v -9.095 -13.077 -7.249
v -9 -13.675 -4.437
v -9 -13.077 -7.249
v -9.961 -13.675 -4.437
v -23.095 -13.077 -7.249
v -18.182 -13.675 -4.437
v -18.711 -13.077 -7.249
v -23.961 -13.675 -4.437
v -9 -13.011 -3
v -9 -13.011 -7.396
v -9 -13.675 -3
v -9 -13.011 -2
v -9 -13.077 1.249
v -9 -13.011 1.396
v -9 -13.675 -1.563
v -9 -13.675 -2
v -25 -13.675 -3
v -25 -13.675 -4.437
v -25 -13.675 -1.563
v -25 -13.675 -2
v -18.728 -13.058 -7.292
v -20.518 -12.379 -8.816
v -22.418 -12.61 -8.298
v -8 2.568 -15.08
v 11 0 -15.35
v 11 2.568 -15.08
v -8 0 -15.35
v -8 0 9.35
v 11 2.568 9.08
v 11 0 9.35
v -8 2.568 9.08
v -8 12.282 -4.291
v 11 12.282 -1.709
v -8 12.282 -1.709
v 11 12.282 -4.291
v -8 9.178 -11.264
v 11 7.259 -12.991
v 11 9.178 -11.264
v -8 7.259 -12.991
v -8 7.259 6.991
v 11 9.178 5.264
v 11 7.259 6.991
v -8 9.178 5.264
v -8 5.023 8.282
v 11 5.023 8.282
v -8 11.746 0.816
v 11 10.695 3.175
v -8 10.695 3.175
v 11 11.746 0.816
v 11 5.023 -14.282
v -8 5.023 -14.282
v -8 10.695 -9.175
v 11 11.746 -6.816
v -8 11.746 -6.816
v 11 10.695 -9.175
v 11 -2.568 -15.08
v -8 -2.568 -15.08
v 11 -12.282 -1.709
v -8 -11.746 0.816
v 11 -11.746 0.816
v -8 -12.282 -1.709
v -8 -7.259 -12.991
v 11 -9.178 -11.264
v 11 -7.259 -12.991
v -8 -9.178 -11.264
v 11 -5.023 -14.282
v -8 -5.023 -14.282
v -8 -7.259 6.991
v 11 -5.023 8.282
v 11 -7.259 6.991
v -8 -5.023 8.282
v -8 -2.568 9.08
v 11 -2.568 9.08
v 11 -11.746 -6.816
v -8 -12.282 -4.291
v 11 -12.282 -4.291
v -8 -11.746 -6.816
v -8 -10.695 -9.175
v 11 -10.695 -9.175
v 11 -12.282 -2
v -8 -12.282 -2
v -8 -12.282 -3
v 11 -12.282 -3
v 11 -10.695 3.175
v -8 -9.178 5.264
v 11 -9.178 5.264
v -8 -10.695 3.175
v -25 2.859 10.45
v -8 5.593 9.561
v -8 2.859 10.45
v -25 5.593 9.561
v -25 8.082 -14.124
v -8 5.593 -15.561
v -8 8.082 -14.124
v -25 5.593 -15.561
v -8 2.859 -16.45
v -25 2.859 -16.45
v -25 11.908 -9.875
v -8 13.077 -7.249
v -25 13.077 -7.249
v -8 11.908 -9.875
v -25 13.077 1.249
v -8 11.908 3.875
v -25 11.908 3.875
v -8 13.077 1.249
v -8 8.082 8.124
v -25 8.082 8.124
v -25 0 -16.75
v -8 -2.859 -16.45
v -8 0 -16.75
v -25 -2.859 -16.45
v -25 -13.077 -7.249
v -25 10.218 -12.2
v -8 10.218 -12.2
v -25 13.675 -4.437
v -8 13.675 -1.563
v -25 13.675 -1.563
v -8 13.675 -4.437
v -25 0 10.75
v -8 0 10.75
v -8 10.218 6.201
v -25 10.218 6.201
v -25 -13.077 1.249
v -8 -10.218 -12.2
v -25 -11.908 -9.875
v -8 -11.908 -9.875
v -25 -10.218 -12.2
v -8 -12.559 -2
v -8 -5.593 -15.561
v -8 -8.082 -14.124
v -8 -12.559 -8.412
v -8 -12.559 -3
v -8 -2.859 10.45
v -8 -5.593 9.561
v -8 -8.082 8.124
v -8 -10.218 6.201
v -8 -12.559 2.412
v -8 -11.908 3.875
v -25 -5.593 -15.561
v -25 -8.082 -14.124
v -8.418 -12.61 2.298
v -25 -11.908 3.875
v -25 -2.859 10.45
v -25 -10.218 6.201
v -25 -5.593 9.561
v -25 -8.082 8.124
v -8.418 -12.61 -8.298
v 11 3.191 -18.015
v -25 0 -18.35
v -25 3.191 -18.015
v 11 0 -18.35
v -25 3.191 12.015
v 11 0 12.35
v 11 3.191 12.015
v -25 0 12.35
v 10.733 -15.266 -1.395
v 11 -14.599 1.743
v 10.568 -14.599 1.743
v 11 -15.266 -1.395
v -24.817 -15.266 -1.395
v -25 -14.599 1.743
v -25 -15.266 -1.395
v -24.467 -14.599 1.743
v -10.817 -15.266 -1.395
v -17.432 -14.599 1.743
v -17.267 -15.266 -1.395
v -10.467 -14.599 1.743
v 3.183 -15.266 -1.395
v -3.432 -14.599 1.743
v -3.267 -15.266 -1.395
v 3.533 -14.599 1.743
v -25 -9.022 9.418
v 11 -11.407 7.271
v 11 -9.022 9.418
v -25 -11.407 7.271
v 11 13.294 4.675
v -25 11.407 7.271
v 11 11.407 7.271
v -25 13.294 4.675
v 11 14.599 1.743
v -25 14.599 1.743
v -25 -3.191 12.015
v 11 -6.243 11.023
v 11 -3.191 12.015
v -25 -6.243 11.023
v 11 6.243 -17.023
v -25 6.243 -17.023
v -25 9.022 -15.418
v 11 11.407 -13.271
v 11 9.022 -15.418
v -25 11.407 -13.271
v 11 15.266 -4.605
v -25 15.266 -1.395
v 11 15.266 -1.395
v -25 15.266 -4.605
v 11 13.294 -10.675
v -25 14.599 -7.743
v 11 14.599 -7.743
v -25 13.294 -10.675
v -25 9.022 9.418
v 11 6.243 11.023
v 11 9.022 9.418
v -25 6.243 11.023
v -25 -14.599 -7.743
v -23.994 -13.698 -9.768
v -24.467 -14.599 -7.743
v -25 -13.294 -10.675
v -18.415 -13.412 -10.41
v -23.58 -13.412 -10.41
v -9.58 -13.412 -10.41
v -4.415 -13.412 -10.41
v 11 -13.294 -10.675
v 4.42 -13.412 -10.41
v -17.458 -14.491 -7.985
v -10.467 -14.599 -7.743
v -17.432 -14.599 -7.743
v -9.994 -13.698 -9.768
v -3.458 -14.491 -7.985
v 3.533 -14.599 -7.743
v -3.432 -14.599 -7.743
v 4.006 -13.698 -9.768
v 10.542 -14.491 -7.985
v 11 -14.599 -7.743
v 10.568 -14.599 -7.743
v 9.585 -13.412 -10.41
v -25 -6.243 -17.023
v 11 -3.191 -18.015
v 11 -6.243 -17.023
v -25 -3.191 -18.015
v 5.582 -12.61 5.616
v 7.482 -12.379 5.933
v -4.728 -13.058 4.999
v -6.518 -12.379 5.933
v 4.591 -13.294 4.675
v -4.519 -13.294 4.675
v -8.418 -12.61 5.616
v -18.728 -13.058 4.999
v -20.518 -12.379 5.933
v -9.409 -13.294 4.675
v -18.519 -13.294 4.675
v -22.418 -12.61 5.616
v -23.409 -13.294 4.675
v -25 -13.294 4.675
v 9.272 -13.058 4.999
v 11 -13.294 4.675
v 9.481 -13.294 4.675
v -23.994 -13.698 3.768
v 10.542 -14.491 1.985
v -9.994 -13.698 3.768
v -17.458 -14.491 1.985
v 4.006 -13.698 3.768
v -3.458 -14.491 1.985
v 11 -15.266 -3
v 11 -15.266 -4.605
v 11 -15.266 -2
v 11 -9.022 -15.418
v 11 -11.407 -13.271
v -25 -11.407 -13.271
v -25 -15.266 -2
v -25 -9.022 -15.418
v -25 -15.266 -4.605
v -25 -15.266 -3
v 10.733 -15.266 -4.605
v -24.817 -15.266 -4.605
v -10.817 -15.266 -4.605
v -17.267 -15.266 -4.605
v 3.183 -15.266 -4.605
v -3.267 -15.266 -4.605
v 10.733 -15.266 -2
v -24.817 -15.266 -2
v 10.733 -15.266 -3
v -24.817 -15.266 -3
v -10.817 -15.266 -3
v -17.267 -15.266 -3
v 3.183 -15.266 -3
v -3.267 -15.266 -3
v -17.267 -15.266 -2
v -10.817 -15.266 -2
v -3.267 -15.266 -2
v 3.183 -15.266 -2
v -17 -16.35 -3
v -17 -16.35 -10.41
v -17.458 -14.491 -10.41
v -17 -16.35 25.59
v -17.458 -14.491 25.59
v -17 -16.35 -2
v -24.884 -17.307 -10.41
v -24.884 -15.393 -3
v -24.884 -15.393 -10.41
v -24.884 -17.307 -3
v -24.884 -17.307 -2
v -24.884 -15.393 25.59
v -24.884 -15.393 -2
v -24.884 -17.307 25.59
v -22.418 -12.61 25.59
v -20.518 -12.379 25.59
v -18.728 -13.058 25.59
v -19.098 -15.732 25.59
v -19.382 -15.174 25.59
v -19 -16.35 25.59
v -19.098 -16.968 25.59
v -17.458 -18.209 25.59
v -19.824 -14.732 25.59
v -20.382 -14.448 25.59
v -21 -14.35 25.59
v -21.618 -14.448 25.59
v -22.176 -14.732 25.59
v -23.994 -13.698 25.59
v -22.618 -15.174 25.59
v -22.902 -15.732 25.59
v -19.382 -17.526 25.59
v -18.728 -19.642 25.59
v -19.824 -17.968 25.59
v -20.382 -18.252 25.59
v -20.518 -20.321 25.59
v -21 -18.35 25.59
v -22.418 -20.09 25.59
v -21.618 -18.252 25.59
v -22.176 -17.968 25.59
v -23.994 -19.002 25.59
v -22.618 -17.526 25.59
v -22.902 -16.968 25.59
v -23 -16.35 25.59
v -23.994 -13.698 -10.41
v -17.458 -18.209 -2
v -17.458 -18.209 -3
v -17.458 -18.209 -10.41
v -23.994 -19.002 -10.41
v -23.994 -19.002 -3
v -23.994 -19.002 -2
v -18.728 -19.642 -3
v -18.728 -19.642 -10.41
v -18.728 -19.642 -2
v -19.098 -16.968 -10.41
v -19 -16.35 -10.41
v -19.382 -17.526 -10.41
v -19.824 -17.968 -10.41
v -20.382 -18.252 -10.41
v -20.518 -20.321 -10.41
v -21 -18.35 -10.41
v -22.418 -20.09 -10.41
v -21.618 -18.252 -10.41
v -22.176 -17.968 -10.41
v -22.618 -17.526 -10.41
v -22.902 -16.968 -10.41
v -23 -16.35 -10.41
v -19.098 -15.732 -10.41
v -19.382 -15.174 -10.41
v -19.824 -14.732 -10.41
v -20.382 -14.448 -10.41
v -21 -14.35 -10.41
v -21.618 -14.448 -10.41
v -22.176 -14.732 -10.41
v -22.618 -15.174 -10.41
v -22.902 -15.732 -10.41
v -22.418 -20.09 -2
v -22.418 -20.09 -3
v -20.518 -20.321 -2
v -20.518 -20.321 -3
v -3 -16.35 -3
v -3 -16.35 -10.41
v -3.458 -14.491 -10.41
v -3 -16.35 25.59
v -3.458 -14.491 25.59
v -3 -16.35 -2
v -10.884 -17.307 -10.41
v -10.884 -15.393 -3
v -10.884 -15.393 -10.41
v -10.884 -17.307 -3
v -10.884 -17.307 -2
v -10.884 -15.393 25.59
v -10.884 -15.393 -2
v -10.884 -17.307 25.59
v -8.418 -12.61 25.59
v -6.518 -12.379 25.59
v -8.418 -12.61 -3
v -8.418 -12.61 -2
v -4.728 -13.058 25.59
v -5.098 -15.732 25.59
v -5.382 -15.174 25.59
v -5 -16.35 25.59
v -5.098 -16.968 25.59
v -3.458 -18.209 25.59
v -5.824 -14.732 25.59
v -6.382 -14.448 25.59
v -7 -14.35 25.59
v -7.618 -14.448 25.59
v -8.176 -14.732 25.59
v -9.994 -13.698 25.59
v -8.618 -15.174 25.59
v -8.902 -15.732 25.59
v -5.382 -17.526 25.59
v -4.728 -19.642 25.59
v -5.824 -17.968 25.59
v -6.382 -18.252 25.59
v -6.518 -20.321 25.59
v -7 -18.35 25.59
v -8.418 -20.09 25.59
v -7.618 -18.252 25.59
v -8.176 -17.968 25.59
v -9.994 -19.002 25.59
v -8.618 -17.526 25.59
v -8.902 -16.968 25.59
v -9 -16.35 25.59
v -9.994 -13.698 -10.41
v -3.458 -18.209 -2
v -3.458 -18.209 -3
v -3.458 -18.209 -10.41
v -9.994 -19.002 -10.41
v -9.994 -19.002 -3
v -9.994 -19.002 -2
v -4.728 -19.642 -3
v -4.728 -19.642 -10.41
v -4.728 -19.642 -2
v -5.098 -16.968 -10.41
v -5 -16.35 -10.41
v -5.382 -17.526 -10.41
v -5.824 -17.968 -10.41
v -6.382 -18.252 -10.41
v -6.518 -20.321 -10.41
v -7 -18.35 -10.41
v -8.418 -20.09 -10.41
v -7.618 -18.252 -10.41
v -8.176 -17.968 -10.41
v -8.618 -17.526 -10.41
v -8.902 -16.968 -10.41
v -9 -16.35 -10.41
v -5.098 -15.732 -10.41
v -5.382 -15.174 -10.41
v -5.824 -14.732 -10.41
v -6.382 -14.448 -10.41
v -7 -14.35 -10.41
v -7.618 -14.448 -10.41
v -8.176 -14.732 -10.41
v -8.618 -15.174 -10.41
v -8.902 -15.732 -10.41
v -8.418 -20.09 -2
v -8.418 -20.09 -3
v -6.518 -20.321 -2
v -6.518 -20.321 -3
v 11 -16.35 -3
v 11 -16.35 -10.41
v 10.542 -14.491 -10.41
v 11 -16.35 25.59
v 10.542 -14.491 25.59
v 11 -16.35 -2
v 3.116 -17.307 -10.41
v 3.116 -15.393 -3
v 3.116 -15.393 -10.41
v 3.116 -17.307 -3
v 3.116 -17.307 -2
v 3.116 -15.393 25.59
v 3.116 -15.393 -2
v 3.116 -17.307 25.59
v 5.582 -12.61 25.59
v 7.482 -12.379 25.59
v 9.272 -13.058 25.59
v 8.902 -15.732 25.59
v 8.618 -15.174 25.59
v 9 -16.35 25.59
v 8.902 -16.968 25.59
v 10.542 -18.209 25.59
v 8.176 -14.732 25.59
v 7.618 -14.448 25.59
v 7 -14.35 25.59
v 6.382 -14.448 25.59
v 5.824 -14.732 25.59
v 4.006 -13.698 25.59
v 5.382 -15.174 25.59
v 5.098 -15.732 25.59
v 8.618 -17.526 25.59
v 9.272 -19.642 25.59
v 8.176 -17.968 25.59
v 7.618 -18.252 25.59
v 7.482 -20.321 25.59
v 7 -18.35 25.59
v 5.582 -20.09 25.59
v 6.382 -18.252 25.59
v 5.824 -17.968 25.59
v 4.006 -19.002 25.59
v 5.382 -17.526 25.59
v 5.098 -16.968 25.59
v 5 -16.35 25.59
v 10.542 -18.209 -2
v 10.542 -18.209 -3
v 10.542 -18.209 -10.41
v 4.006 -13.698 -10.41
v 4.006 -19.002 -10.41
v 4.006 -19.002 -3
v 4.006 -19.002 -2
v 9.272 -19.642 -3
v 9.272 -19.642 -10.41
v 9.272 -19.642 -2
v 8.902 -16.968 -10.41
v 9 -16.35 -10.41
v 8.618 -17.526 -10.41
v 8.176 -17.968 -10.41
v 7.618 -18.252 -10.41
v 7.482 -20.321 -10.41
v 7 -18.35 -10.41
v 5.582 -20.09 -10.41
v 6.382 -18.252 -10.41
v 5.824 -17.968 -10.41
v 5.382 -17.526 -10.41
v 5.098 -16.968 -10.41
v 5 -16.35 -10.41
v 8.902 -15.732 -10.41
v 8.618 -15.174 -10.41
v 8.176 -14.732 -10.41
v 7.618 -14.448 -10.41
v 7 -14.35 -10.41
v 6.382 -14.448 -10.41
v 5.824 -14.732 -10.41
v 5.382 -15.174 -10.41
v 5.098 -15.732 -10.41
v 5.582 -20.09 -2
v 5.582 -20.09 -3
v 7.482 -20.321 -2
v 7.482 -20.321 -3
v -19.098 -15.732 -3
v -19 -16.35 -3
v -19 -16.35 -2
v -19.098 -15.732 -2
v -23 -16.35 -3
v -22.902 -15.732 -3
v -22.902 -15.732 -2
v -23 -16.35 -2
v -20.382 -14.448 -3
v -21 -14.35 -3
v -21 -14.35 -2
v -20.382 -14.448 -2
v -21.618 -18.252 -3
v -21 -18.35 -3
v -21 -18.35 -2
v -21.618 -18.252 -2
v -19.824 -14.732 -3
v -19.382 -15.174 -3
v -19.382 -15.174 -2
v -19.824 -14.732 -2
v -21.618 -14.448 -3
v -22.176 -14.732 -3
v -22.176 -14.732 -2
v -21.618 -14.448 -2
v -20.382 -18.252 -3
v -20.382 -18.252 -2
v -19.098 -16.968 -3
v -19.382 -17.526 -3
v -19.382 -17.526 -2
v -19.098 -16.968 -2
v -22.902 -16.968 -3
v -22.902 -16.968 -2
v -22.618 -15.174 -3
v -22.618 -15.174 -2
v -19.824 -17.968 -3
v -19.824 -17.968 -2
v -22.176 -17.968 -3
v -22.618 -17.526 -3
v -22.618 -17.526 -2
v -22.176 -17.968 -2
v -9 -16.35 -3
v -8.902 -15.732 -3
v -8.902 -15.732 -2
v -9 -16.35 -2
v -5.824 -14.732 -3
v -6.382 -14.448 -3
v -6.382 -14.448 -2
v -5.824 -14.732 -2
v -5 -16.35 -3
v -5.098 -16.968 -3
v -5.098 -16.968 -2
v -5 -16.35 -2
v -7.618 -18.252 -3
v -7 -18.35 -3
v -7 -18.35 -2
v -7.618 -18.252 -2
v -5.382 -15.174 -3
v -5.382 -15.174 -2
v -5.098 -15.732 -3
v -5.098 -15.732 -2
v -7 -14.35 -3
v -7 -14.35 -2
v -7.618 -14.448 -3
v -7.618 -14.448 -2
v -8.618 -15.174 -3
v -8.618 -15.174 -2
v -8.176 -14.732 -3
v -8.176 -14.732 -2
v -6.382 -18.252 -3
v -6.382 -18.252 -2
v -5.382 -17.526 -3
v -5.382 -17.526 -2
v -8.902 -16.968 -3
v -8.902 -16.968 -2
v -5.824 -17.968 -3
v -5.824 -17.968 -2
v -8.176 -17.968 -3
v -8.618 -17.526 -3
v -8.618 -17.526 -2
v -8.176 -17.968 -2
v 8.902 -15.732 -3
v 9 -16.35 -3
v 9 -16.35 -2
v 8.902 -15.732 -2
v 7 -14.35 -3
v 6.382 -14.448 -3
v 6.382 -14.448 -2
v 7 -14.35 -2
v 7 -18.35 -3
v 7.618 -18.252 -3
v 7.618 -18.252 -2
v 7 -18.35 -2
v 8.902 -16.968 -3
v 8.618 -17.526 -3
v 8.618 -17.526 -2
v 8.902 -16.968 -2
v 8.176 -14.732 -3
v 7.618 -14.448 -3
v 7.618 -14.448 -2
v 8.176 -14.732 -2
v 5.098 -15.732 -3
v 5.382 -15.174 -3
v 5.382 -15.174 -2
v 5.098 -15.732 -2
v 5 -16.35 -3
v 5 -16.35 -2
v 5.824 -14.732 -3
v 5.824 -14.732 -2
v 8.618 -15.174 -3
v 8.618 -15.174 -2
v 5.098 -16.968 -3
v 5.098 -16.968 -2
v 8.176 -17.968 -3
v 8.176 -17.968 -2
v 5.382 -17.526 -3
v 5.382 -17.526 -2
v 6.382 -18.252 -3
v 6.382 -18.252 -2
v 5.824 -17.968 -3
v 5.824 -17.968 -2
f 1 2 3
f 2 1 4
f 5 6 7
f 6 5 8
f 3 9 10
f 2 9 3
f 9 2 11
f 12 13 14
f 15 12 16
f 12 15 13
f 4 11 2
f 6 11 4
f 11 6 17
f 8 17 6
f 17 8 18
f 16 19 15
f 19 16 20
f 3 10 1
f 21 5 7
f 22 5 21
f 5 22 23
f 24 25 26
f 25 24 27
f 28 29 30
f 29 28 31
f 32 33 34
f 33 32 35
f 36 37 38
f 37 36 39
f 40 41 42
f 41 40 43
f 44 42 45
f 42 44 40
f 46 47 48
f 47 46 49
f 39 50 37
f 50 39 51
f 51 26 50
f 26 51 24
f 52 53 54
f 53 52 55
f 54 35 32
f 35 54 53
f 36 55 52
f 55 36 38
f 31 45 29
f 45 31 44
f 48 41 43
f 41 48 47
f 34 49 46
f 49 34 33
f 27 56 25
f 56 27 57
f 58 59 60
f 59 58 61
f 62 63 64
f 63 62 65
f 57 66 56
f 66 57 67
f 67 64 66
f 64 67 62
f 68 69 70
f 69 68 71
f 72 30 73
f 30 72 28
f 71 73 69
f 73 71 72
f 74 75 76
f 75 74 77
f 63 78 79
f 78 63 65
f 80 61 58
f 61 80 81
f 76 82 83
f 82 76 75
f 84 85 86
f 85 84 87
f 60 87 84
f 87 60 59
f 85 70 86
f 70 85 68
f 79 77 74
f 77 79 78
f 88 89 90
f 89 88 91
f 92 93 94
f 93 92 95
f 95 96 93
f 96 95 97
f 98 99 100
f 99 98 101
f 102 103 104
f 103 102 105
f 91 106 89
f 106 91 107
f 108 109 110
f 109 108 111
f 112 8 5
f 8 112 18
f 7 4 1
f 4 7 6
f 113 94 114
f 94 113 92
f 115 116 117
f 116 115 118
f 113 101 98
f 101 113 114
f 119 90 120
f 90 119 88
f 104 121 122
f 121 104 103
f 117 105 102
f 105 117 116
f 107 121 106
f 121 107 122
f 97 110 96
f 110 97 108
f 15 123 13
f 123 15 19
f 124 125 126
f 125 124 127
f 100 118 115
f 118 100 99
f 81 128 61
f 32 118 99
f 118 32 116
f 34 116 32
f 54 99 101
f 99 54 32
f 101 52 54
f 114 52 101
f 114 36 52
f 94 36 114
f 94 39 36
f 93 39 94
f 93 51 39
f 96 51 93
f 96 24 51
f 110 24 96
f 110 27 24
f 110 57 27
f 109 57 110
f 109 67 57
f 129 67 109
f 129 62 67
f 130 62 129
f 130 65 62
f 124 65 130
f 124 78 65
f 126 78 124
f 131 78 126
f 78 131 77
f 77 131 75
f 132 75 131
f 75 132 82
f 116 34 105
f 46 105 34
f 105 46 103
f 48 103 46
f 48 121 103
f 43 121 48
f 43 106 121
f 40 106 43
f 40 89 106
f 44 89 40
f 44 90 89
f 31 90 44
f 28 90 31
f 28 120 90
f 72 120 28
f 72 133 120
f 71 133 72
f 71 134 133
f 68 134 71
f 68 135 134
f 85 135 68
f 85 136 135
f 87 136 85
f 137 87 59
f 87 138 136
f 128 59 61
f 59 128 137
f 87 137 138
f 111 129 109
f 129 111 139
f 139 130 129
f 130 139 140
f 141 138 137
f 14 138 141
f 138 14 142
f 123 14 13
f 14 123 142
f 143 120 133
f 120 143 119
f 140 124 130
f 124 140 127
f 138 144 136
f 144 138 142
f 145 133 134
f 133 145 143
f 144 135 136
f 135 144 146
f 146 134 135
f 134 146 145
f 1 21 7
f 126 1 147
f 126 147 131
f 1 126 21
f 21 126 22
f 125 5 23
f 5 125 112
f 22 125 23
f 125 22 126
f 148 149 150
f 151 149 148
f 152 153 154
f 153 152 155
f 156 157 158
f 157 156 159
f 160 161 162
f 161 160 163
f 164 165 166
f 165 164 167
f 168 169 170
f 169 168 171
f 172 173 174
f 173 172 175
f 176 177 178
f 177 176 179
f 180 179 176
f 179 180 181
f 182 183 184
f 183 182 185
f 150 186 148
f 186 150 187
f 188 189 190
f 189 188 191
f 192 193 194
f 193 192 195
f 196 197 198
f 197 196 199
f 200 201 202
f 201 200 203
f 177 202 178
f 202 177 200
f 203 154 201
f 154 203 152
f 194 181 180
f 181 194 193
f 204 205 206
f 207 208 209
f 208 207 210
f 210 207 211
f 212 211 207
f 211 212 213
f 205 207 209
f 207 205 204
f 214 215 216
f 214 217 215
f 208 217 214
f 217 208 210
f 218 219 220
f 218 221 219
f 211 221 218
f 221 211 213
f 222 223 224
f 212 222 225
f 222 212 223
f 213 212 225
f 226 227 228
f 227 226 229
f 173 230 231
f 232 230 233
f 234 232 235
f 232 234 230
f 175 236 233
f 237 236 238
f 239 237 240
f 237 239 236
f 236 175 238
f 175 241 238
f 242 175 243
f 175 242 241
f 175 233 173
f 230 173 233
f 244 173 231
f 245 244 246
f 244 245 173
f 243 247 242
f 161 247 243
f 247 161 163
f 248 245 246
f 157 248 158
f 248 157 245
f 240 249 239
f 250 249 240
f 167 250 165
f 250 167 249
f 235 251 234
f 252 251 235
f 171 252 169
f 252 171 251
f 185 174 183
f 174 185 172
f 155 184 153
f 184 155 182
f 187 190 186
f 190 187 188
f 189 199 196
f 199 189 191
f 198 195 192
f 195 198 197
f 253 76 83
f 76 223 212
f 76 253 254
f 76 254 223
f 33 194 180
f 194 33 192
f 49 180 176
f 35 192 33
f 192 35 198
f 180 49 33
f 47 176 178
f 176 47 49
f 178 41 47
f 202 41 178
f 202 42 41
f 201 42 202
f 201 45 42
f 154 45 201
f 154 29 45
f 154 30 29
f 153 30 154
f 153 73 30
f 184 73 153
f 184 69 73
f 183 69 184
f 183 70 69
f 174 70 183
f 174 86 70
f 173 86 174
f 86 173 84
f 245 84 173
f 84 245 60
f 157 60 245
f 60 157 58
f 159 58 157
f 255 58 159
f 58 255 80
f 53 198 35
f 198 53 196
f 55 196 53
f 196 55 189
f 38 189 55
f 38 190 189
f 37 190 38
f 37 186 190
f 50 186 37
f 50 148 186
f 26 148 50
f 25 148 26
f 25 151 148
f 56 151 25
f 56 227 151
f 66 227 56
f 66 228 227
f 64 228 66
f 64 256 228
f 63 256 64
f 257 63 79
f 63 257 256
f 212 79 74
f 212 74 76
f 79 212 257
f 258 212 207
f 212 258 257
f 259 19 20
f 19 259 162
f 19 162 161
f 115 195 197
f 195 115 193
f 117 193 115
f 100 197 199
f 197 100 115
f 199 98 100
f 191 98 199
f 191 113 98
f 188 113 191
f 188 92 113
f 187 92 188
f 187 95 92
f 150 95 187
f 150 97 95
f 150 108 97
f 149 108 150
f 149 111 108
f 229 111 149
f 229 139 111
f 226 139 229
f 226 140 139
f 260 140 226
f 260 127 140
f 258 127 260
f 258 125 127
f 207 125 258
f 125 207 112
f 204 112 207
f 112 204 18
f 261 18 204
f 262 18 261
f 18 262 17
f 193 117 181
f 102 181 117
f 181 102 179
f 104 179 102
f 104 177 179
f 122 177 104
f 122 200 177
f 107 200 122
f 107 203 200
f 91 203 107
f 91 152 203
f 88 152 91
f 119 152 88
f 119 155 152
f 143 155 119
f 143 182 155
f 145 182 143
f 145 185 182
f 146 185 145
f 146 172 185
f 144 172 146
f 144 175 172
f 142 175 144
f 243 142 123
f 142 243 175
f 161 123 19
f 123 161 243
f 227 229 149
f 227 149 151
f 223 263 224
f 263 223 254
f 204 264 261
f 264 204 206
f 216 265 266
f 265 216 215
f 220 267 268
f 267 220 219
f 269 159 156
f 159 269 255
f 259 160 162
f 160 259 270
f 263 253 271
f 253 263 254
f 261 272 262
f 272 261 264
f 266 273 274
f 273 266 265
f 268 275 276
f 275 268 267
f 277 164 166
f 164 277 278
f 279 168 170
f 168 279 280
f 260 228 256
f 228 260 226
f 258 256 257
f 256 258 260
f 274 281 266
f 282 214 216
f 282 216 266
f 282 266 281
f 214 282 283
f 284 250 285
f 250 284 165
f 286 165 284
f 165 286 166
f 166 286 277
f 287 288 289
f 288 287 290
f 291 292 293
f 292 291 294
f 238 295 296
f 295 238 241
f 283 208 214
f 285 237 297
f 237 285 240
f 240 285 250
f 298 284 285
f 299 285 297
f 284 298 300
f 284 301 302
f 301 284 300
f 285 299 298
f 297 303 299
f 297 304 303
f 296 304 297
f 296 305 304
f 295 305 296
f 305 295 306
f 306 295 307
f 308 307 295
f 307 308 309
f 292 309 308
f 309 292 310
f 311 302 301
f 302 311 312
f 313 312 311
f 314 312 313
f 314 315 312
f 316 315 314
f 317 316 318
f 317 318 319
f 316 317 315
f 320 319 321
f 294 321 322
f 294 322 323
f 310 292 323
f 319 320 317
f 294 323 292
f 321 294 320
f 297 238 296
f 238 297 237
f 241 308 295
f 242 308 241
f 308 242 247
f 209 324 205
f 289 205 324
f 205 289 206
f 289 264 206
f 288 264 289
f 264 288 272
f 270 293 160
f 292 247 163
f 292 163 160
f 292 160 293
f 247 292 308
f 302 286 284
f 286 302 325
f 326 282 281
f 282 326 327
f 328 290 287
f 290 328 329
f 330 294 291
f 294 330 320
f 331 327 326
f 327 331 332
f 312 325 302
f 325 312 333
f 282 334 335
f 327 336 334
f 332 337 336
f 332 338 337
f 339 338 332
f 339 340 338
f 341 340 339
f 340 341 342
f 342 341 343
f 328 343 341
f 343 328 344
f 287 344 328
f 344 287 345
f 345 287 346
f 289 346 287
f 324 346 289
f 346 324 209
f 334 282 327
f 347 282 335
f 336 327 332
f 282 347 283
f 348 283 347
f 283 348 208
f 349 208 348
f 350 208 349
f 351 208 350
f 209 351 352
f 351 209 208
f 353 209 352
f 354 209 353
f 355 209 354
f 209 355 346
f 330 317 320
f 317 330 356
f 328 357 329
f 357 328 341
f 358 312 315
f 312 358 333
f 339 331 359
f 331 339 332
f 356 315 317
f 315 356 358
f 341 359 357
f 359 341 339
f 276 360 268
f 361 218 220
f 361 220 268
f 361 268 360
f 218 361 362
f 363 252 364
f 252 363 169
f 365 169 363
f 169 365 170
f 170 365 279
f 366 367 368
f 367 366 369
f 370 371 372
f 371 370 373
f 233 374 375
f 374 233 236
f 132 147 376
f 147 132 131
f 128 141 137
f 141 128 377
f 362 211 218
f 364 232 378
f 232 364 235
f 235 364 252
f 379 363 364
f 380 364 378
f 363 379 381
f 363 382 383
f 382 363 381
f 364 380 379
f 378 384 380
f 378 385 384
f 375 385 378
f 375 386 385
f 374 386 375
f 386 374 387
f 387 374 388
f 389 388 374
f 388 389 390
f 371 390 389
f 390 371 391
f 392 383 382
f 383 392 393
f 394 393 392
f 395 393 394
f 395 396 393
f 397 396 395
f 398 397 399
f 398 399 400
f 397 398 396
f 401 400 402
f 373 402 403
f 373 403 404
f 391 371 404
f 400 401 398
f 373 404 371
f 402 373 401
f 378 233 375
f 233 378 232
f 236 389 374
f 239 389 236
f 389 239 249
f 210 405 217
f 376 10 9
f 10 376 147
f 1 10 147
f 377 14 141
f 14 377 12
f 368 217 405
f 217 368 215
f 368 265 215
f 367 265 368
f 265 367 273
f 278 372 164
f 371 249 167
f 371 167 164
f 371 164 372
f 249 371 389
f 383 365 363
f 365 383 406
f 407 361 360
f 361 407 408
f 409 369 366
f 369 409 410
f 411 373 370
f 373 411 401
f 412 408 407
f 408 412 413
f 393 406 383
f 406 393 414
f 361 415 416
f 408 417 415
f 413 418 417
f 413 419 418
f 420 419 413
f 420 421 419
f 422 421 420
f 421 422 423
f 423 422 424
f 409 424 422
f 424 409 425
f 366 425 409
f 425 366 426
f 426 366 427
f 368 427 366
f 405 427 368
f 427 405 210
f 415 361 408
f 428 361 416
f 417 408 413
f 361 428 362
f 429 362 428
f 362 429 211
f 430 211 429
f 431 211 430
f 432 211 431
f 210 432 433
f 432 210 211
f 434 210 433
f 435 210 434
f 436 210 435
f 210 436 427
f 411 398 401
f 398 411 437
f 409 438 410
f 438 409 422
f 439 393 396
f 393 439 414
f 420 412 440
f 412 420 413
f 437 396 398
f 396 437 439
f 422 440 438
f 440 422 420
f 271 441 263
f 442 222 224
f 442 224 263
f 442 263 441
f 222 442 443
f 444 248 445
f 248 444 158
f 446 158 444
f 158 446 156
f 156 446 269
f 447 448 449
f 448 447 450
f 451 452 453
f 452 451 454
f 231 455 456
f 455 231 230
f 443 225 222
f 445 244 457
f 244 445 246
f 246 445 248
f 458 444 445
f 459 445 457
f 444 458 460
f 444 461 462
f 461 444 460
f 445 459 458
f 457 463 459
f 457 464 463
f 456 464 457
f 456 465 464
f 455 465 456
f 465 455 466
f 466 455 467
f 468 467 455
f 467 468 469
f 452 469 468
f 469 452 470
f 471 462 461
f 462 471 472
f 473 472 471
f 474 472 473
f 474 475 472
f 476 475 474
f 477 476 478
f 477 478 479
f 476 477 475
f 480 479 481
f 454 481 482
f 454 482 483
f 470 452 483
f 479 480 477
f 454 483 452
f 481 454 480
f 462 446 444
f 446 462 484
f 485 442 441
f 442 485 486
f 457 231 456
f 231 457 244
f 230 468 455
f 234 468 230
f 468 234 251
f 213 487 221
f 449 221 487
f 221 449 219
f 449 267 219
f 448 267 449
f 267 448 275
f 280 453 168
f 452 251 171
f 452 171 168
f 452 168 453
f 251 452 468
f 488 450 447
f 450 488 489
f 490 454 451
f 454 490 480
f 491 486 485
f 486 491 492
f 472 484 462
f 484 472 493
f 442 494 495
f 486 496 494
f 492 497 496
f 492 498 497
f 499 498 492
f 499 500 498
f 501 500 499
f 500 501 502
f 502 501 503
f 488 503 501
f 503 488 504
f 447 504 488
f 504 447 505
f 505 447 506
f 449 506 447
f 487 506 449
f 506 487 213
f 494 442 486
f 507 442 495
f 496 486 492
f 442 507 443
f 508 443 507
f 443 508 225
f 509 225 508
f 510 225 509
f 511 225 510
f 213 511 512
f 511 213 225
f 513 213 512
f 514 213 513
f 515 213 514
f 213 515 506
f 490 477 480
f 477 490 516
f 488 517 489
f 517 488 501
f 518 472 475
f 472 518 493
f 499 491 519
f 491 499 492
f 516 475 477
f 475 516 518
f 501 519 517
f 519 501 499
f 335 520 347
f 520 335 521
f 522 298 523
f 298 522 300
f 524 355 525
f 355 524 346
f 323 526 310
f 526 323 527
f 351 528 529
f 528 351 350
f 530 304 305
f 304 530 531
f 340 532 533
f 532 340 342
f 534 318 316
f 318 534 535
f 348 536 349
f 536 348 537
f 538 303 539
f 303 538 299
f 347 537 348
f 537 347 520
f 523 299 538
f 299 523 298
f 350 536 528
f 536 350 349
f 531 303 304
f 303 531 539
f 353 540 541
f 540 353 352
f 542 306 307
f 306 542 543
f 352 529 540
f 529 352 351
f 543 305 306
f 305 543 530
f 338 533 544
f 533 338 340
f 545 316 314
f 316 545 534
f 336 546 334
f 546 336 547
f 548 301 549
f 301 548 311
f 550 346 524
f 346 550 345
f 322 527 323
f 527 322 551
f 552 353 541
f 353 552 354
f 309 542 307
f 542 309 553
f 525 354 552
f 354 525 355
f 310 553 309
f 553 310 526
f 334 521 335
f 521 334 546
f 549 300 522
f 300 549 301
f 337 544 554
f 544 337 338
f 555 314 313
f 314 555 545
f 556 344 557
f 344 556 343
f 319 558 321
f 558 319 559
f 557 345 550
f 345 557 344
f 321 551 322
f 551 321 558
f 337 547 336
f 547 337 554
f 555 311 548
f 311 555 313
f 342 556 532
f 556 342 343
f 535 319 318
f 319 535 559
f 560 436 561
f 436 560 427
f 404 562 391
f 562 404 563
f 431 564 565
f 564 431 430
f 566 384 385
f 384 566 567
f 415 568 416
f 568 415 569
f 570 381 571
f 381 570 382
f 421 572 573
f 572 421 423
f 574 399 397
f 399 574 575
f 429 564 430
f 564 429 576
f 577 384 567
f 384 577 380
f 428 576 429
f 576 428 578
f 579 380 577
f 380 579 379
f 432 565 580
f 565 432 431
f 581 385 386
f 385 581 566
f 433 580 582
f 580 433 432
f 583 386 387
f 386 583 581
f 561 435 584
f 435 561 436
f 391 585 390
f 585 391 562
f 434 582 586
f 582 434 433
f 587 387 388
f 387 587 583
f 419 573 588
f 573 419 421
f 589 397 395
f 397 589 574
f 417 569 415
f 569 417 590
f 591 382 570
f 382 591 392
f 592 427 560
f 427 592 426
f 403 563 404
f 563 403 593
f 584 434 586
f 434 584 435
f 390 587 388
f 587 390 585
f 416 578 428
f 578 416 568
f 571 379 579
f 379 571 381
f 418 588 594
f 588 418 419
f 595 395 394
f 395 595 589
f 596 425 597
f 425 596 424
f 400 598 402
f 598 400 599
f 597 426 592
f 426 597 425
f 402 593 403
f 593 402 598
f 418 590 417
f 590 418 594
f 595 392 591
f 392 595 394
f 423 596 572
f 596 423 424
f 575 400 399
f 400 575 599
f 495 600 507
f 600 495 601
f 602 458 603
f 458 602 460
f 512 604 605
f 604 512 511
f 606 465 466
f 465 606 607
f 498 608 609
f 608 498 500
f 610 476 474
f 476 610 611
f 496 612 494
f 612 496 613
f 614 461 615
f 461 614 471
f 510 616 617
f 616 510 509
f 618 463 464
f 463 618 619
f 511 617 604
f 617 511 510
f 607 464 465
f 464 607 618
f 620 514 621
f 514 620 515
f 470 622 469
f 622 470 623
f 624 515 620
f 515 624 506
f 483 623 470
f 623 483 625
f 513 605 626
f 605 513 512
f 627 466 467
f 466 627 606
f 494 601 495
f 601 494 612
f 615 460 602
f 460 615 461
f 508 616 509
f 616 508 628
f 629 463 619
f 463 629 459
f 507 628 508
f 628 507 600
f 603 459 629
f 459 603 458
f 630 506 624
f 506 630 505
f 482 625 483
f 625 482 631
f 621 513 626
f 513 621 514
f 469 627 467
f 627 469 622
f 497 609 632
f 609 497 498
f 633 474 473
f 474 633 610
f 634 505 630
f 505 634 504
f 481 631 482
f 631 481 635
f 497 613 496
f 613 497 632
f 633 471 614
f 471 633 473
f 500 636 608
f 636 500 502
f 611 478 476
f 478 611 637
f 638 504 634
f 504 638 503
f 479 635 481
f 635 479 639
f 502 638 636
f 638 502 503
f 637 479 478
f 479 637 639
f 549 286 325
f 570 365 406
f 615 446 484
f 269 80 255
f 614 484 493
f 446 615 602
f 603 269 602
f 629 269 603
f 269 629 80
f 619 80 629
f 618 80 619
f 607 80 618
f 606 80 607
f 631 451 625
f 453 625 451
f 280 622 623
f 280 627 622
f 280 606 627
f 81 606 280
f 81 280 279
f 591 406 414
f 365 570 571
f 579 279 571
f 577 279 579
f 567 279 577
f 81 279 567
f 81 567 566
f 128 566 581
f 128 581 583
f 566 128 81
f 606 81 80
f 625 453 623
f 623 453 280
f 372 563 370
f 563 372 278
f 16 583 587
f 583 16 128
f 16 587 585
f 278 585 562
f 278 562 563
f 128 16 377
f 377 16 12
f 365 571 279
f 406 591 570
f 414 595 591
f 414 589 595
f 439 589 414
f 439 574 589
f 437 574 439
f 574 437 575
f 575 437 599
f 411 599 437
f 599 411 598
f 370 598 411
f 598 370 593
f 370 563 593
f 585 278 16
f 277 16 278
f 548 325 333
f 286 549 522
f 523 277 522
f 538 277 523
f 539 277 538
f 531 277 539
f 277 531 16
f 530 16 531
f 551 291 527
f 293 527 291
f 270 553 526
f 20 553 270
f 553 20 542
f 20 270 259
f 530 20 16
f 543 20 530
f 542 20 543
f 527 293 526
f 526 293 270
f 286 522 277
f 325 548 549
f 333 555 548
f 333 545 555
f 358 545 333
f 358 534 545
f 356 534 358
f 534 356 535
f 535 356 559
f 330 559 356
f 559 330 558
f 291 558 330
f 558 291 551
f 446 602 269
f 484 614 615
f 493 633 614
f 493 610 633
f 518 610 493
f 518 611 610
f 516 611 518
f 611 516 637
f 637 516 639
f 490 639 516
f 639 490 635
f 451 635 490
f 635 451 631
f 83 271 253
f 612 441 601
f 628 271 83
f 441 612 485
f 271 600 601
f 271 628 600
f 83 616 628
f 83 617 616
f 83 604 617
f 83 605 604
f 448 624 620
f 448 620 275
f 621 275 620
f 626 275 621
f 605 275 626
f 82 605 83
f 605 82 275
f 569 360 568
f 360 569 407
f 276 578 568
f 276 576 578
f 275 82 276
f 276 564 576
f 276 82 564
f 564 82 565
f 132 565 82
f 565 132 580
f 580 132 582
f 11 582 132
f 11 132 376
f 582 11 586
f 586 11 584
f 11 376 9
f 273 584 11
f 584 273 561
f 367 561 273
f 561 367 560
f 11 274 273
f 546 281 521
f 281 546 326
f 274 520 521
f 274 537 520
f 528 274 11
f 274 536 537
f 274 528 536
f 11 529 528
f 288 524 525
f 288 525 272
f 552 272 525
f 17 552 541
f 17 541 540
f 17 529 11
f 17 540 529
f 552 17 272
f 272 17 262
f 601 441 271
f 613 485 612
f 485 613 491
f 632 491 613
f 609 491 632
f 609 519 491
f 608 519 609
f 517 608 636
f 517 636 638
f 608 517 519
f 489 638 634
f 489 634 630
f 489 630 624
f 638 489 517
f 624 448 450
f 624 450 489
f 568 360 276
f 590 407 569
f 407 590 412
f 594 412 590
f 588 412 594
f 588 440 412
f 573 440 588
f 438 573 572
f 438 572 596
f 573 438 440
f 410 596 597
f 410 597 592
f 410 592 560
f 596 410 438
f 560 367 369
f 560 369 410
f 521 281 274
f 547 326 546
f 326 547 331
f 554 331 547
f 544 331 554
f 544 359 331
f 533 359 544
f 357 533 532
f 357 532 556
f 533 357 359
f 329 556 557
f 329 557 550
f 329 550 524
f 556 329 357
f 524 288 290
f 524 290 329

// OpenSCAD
pump_d = 24.7;
pump_D = 27.5;
wall_t = 3;
pump_h = 20;
screw_sep = 14;
screw_head_d = 8;
screw_h = 36;
pump_center_z = pump_d/2 + wall_t - 3;
slit_t = 1;

module pump(){
translate([-pump_h/2, pump_d/2 + wall_t, pump_center_z]) 
  rotate(a=90, v=[0, 1, 0])
  translate([0, 0, -1])
  {
    cylinder(d=pump_d, h=pump_h + 2);
    translate([0, 0, -pump_h])cylinder(d=pump_D, h=pump_h + 2);
  }
}

module p_clamp(){
  difference(){
    union(){
      difference(){
	{
	  translate([-1.25 * pump_h, pump_d/2 + wall_t, pump_center_z]) 
	    rotate(a=90, v=[0, 1, 0])
	    cylinder(d=pump_d + 2 * wall_t, h=2 * screw_sep + screw_head_d);
	}
	translate([1, 0, 0])pump();
      }
    
    
      difference(){
	union(){
	  for(i=[-1.5, -.5, .5]){
	    translate([i * screw_sep, -1, pump_d/5])
	      cylinder(d=screw_head_d, h=screw_h);
	  }
	}
	pump();
	cube([pump_h + 2, 100, slit_t]);
      }
    }
    // slot
    translate([-pump_h/2 - 100, -20, pump_center_z])
      cube([pump_h + 2 + 100, pump_d/2 + wall_t + 20, 1]);

    for(i=[-1.5, -.5, .5]){
      translate([i * screw_sep, -1, pump_d/5])
	translate([0, 0, -1])cylinder(d=4, h=screw_h + 2, $fn=20);
    }
  }
}
translate([0, -pump_d/2 - wall_t, -pump_d/2 - wall_t])
color([1, 0 ,0])
p_clamp();

if(false){
  translate([1.5, 21.6, 25])
    rotate(a=180, v=[1, 0, 0])
    import("board.stl");
  
  translate([-6.5, 18, 20.5])
    rotate(a=180, v=[1, 0, 0])
    import("pump.stl");
}
